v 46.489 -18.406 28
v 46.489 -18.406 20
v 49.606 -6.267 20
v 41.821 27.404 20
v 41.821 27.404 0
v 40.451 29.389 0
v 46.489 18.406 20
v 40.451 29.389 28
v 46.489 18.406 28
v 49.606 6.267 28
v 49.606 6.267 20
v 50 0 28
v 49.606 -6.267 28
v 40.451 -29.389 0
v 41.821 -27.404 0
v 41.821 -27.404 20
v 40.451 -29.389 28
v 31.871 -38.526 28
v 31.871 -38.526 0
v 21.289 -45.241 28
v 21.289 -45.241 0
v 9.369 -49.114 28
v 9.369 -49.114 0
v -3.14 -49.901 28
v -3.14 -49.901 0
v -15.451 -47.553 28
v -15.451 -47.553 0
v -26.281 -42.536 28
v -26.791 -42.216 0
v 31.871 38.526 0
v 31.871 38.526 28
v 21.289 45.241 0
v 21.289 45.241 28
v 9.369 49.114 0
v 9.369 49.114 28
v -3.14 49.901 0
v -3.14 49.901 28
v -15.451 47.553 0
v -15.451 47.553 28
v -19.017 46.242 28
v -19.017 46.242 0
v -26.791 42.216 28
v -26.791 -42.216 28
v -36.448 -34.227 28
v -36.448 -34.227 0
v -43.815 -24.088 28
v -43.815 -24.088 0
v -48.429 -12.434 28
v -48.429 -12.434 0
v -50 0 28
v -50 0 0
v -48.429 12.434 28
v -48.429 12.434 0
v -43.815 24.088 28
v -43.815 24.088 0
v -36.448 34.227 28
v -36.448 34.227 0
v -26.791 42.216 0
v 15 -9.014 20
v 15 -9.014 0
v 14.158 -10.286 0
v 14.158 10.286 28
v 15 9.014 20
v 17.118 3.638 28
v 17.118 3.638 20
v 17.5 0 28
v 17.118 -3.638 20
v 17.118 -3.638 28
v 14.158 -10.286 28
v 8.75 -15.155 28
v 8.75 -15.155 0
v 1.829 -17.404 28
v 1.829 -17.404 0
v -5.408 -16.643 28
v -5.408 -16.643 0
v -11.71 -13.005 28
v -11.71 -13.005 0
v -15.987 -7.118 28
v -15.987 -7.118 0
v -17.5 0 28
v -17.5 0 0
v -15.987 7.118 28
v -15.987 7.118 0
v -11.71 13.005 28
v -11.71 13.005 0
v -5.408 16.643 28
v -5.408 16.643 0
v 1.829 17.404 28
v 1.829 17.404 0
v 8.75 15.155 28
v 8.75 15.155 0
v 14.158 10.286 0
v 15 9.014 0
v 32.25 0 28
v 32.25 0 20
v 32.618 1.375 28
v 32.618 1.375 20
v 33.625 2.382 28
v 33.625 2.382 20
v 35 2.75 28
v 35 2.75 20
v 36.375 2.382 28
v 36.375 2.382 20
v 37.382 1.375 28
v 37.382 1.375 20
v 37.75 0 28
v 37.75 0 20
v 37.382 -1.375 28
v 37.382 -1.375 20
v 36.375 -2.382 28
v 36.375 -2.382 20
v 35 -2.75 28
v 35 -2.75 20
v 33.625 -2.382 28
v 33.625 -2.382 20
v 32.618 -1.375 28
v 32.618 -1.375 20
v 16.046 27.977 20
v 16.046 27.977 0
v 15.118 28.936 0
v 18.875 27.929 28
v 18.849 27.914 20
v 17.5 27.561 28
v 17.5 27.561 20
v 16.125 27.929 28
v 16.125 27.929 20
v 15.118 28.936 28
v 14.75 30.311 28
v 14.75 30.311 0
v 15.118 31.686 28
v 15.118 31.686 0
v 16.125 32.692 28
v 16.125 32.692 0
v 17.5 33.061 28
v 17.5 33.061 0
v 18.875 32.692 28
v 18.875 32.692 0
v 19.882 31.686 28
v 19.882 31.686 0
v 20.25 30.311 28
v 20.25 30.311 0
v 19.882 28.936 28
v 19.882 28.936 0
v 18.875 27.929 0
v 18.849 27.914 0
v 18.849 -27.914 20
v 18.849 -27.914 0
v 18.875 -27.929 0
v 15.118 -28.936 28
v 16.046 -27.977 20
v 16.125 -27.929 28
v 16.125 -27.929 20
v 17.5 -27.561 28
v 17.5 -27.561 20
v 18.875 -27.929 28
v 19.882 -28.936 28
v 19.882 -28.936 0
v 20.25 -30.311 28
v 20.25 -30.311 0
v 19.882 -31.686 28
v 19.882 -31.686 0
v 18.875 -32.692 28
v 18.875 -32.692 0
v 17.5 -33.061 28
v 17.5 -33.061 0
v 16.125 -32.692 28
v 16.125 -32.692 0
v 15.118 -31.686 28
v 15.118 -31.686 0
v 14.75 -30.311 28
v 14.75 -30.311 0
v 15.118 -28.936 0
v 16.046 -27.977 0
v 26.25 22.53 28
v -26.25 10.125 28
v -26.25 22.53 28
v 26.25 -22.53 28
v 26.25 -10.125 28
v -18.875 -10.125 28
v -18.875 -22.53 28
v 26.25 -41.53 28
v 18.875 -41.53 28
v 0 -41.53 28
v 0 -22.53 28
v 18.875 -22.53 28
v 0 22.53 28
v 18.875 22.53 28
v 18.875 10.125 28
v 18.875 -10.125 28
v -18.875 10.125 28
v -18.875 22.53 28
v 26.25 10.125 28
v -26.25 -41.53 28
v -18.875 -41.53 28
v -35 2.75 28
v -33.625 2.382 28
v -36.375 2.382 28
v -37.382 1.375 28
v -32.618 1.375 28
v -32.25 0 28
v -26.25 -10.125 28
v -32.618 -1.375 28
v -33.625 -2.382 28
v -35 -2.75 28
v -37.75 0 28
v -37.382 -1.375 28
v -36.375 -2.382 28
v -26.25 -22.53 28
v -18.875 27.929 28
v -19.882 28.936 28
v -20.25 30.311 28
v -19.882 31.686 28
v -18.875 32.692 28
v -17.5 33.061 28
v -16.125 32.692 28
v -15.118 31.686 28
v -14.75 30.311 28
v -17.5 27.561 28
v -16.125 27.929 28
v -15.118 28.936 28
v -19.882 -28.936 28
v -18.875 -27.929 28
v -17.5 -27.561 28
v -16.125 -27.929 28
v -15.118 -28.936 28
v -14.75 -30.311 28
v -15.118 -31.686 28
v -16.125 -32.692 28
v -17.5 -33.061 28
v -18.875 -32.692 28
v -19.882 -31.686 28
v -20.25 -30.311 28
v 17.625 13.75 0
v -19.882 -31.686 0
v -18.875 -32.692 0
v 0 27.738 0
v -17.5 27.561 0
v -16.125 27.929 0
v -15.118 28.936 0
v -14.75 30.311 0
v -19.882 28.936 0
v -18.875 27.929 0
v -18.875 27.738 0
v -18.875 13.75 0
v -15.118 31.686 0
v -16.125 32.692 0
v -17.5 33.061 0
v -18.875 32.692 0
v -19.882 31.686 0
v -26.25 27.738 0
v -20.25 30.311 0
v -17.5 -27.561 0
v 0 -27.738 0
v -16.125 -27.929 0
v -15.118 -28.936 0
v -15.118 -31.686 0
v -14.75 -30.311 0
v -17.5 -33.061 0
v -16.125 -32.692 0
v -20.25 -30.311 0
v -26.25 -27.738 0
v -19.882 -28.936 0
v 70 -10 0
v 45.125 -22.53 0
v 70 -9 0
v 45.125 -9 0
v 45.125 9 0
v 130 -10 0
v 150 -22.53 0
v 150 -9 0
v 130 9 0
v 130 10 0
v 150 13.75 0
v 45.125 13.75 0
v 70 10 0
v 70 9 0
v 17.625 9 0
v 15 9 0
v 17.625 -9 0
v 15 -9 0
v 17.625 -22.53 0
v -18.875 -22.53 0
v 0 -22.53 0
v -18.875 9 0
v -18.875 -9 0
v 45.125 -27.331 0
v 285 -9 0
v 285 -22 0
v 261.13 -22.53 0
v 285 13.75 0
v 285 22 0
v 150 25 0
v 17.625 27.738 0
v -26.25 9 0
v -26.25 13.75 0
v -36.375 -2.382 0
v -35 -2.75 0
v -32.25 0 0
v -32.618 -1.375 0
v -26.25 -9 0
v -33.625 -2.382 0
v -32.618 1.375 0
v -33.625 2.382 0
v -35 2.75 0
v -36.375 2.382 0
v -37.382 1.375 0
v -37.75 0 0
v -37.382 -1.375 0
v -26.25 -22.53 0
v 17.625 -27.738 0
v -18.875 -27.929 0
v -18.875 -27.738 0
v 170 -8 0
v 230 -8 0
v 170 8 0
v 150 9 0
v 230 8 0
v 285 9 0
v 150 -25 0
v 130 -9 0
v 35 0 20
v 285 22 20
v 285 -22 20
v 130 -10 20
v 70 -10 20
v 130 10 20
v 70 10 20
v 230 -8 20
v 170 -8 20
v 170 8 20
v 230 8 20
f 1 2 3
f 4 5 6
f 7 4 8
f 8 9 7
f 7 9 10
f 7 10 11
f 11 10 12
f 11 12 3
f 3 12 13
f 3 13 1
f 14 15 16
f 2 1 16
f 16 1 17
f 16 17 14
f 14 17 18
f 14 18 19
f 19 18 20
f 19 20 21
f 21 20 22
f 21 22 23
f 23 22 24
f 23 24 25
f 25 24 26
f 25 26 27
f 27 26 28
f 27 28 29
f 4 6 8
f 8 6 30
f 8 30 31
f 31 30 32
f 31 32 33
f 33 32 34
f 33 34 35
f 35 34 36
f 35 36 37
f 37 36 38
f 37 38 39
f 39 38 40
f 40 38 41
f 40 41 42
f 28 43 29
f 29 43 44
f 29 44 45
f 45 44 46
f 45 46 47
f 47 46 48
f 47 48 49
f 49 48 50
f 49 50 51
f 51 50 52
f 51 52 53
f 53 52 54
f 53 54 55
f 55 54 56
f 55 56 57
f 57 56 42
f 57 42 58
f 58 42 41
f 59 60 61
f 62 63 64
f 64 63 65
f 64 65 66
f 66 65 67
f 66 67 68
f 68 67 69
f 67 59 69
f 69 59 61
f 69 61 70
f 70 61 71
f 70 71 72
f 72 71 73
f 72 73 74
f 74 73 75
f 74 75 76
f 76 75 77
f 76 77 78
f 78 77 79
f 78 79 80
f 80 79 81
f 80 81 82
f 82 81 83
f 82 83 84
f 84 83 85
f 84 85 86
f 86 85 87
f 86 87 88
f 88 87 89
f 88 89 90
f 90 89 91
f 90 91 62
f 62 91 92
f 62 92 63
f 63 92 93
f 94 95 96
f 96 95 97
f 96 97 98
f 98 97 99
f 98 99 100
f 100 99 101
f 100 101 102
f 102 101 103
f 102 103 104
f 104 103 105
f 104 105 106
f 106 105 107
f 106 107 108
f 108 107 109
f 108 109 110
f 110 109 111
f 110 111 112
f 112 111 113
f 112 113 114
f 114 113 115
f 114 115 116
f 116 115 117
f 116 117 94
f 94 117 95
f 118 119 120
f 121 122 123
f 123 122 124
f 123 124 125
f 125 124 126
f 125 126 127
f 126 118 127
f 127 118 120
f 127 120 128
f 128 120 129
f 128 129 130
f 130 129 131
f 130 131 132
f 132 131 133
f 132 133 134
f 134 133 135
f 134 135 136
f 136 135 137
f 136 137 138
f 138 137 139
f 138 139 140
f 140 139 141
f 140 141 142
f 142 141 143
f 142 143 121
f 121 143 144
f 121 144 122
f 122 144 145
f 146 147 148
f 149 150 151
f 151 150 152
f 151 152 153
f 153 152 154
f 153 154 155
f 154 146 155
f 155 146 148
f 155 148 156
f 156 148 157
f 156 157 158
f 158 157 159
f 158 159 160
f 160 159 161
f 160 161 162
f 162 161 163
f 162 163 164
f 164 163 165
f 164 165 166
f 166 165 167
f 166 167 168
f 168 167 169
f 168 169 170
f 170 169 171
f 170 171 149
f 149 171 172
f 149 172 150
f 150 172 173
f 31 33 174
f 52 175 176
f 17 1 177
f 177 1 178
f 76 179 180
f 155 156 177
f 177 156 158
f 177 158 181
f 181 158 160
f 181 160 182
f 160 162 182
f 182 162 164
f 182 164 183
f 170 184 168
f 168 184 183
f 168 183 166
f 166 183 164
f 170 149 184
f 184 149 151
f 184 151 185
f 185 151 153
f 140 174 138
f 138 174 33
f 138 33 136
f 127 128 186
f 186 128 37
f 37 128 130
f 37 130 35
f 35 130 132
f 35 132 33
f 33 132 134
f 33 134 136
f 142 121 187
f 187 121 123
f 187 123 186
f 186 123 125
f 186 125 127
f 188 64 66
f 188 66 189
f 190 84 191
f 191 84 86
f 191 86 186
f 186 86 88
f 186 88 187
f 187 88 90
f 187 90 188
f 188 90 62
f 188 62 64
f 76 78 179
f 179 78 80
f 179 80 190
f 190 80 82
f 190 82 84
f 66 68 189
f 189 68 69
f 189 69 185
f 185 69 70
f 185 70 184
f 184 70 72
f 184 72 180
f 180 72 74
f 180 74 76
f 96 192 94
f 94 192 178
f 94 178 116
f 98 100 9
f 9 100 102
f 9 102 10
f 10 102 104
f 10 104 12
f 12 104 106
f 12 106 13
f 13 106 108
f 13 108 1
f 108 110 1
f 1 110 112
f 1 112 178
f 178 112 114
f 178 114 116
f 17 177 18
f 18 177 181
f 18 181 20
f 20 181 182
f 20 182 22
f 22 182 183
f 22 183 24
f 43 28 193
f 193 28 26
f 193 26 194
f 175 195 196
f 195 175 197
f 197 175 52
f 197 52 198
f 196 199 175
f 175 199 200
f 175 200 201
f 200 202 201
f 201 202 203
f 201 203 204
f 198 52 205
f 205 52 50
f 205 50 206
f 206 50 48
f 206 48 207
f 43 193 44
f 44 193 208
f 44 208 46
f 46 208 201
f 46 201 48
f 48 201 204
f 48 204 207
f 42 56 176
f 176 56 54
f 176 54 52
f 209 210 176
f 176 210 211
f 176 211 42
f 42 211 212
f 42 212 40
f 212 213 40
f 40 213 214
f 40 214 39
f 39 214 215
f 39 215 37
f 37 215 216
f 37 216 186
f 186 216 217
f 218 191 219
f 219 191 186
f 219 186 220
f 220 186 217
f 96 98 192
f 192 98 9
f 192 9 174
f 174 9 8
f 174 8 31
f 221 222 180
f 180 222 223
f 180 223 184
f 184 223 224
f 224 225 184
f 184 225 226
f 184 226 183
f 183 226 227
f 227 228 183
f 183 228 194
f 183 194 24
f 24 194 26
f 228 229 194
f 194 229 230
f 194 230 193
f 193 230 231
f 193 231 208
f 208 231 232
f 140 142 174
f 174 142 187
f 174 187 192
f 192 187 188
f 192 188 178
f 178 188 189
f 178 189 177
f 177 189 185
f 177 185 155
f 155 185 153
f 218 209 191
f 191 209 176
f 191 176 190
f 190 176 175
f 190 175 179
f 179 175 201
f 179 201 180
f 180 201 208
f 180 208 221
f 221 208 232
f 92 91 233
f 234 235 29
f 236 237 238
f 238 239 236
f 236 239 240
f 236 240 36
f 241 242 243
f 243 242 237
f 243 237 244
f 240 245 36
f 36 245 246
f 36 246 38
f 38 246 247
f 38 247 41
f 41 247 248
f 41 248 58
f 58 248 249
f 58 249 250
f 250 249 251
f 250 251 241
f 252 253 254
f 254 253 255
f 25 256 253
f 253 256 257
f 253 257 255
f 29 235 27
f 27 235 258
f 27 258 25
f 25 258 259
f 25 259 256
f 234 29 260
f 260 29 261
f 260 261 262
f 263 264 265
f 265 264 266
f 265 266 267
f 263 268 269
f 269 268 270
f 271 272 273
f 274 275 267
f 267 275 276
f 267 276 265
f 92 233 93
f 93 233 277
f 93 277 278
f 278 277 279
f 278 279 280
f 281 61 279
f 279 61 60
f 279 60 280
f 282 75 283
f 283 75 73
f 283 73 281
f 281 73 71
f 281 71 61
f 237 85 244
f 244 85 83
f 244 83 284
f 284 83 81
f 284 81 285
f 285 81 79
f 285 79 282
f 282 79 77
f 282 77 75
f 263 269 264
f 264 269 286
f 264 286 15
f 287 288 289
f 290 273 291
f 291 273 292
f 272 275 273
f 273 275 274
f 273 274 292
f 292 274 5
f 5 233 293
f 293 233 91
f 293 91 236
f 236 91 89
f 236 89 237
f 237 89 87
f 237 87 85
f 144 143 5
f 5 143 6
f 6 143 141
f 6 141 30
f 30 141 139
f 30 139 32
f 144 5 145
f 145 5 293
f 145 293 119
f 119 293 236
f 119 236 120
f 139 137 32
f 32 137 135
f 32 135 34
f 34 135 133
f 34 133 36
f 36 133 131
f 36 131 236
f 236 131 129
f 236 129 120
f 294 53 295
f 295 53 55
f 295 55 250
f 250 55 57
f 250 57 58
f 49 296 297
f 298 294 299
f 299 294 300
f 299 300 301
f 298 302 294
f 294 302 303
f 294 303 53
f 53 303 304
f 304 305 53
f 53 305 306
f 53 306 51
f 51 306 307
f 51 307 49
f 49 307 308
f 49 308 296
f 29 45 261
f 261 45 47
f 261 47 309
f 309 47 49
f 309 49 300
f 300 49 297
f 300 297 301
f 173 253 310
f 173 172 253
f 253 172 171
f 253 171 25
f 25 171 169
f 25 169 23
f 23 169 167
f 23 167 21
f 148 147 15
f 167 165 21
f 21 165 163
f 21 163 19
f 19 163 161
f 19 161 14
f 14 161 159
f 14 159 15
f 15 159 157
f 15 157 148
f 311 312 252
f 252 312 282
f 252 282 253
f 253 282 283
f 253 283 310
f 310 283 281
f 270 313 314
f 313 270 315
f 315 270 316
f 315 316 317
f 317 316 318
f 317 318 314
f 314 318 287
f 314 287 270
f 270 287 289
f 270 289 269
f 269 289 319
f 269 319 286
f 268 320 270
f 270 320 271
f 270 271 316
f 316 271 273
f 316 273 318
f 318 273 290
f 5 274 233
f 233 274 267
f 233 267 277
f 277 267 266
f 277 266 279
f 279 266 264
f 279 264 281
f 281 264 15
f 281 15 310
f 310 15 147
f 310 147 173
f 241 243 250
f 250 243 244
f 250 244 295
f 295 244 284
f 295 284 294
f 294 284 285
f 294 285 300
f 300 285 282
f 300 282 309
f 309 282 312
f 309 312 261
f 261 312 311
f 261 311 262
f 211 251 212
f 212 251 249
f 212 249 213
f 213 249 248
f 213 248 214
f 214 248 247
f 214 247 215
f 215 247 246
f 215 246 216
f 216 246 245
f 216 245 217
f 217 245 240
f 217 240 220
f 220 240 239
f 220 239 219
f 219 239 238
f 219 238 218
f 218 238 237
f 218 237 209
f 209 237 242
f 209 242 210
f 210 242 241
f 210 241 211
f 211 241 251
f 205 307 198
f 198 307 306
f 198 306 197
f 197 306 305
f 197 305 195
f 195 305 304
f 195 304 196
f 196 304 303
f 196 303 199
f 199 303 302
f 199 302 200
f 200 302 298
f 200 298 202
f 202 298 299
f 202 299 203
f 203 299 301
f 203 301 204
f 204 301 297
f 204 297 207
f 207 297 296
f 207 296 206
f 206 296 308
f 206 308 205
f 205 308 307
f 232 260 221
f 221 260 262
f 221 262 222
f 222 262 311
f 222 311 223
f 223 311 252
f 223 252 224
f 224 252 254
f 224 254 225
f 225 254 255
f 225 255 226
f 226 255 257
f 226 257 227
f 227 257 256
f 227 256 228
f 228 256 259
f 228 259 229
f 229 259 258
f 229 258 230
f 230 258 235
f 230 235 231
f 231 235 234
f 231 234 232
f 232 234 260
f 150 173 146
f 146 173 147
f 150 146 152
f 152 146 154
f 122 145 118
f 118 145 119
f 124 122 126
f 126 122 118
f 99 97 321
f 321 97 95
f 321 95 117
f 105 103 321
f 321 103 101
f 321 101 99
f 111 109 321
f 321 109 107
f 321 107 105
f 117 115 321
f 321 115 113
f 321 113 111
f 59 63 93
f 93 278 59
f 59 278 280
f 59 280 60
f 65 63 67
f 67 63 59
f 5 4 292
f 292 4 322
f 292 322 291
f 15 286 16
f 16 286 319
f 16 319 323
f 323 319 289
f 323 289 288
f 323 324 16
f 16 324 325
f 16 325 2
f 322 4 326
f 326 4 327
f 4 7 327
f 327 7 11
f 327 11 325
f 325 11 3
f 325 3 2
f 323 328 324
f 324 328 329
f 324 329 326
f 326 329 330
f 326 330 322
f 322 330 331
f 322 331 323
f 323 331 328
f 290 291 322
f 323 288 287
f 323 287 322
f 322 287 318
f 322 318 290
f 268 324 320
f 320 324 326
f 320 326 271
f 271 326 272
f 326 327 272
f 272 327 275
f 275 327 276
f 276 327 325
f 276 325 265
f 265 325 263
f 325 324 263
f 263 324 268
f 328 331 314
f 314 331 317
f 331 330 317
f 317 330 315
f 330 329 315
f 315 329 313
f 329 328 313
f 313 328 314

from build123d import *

# Parameters (mm, degrees)
SKETCH1_R           = 50
SKETCH1_R_2         = 17.5
SKETCH1_R_3         = 2.75
BOSS_EXTRUDE1_DEPTH = 28
SKETCH3_W           = 60
SKETCH3_H           = 20
SKETCH3_H_2         = 16
BOSS_EXTRUDE3_DEPTH = 20


with BuildPart() as part:
    # Sketch1 → Boss-Extrude1 (new body)
    with BuildSketch(Plane.XY):
        Circle(SKETCH1_R)
        Circle(SKETCH1_R_2, mode=Mode.SUBTRACT)
        with Locations((35, 0)):
            Circle(SKETCH1_R_3, mode=Mode.SUBTRACT)
        with Locations((17.5, 30.310889132)):
            Circle(SKETCH1_R_3, mode=Mode.SUBTRACT)
        with Locations((-17.5, 30.310889132)):
            Circle(SKETCH1_R_3, mode=Mode.SUBTRACT)
        with Locations((-35, 0)):
            Circle(SKETCH1_R_3, mode=Mode.SUBTRACT)
        with Locations((-17.5, -30.310889132)):
            Circle(SKETCH1_R_3, mode=Mode.SUBTRACT)
        with Locations((17.5, -30.310889132)):
            Circle(SKETCH1_R_3, mode=Mode.SUBTRACT)
    extrude(amount=BOSS_EXTRUDE1_DEPTH)

    # Sketch3 → Boss-Extrude3 (add)
    with BuildSketch(Plane.XY):
        Polygon((15, -28), (15, 28), (285, 22), (285, -22), align=None)
        with Locations((100, 0)):
            Rectangle(SKETCH3_W, SKETCH3_H, mode=Mode.SUBTRACT)
        with Locations((200, 0)):
            Rectangle(SKETCH3_W, SKETCH3_H_2, mode=Mode.SUBTRACT)
    extrude(amount=BOSS_EXTRUDE3_DEPTH)


solid = part.part
